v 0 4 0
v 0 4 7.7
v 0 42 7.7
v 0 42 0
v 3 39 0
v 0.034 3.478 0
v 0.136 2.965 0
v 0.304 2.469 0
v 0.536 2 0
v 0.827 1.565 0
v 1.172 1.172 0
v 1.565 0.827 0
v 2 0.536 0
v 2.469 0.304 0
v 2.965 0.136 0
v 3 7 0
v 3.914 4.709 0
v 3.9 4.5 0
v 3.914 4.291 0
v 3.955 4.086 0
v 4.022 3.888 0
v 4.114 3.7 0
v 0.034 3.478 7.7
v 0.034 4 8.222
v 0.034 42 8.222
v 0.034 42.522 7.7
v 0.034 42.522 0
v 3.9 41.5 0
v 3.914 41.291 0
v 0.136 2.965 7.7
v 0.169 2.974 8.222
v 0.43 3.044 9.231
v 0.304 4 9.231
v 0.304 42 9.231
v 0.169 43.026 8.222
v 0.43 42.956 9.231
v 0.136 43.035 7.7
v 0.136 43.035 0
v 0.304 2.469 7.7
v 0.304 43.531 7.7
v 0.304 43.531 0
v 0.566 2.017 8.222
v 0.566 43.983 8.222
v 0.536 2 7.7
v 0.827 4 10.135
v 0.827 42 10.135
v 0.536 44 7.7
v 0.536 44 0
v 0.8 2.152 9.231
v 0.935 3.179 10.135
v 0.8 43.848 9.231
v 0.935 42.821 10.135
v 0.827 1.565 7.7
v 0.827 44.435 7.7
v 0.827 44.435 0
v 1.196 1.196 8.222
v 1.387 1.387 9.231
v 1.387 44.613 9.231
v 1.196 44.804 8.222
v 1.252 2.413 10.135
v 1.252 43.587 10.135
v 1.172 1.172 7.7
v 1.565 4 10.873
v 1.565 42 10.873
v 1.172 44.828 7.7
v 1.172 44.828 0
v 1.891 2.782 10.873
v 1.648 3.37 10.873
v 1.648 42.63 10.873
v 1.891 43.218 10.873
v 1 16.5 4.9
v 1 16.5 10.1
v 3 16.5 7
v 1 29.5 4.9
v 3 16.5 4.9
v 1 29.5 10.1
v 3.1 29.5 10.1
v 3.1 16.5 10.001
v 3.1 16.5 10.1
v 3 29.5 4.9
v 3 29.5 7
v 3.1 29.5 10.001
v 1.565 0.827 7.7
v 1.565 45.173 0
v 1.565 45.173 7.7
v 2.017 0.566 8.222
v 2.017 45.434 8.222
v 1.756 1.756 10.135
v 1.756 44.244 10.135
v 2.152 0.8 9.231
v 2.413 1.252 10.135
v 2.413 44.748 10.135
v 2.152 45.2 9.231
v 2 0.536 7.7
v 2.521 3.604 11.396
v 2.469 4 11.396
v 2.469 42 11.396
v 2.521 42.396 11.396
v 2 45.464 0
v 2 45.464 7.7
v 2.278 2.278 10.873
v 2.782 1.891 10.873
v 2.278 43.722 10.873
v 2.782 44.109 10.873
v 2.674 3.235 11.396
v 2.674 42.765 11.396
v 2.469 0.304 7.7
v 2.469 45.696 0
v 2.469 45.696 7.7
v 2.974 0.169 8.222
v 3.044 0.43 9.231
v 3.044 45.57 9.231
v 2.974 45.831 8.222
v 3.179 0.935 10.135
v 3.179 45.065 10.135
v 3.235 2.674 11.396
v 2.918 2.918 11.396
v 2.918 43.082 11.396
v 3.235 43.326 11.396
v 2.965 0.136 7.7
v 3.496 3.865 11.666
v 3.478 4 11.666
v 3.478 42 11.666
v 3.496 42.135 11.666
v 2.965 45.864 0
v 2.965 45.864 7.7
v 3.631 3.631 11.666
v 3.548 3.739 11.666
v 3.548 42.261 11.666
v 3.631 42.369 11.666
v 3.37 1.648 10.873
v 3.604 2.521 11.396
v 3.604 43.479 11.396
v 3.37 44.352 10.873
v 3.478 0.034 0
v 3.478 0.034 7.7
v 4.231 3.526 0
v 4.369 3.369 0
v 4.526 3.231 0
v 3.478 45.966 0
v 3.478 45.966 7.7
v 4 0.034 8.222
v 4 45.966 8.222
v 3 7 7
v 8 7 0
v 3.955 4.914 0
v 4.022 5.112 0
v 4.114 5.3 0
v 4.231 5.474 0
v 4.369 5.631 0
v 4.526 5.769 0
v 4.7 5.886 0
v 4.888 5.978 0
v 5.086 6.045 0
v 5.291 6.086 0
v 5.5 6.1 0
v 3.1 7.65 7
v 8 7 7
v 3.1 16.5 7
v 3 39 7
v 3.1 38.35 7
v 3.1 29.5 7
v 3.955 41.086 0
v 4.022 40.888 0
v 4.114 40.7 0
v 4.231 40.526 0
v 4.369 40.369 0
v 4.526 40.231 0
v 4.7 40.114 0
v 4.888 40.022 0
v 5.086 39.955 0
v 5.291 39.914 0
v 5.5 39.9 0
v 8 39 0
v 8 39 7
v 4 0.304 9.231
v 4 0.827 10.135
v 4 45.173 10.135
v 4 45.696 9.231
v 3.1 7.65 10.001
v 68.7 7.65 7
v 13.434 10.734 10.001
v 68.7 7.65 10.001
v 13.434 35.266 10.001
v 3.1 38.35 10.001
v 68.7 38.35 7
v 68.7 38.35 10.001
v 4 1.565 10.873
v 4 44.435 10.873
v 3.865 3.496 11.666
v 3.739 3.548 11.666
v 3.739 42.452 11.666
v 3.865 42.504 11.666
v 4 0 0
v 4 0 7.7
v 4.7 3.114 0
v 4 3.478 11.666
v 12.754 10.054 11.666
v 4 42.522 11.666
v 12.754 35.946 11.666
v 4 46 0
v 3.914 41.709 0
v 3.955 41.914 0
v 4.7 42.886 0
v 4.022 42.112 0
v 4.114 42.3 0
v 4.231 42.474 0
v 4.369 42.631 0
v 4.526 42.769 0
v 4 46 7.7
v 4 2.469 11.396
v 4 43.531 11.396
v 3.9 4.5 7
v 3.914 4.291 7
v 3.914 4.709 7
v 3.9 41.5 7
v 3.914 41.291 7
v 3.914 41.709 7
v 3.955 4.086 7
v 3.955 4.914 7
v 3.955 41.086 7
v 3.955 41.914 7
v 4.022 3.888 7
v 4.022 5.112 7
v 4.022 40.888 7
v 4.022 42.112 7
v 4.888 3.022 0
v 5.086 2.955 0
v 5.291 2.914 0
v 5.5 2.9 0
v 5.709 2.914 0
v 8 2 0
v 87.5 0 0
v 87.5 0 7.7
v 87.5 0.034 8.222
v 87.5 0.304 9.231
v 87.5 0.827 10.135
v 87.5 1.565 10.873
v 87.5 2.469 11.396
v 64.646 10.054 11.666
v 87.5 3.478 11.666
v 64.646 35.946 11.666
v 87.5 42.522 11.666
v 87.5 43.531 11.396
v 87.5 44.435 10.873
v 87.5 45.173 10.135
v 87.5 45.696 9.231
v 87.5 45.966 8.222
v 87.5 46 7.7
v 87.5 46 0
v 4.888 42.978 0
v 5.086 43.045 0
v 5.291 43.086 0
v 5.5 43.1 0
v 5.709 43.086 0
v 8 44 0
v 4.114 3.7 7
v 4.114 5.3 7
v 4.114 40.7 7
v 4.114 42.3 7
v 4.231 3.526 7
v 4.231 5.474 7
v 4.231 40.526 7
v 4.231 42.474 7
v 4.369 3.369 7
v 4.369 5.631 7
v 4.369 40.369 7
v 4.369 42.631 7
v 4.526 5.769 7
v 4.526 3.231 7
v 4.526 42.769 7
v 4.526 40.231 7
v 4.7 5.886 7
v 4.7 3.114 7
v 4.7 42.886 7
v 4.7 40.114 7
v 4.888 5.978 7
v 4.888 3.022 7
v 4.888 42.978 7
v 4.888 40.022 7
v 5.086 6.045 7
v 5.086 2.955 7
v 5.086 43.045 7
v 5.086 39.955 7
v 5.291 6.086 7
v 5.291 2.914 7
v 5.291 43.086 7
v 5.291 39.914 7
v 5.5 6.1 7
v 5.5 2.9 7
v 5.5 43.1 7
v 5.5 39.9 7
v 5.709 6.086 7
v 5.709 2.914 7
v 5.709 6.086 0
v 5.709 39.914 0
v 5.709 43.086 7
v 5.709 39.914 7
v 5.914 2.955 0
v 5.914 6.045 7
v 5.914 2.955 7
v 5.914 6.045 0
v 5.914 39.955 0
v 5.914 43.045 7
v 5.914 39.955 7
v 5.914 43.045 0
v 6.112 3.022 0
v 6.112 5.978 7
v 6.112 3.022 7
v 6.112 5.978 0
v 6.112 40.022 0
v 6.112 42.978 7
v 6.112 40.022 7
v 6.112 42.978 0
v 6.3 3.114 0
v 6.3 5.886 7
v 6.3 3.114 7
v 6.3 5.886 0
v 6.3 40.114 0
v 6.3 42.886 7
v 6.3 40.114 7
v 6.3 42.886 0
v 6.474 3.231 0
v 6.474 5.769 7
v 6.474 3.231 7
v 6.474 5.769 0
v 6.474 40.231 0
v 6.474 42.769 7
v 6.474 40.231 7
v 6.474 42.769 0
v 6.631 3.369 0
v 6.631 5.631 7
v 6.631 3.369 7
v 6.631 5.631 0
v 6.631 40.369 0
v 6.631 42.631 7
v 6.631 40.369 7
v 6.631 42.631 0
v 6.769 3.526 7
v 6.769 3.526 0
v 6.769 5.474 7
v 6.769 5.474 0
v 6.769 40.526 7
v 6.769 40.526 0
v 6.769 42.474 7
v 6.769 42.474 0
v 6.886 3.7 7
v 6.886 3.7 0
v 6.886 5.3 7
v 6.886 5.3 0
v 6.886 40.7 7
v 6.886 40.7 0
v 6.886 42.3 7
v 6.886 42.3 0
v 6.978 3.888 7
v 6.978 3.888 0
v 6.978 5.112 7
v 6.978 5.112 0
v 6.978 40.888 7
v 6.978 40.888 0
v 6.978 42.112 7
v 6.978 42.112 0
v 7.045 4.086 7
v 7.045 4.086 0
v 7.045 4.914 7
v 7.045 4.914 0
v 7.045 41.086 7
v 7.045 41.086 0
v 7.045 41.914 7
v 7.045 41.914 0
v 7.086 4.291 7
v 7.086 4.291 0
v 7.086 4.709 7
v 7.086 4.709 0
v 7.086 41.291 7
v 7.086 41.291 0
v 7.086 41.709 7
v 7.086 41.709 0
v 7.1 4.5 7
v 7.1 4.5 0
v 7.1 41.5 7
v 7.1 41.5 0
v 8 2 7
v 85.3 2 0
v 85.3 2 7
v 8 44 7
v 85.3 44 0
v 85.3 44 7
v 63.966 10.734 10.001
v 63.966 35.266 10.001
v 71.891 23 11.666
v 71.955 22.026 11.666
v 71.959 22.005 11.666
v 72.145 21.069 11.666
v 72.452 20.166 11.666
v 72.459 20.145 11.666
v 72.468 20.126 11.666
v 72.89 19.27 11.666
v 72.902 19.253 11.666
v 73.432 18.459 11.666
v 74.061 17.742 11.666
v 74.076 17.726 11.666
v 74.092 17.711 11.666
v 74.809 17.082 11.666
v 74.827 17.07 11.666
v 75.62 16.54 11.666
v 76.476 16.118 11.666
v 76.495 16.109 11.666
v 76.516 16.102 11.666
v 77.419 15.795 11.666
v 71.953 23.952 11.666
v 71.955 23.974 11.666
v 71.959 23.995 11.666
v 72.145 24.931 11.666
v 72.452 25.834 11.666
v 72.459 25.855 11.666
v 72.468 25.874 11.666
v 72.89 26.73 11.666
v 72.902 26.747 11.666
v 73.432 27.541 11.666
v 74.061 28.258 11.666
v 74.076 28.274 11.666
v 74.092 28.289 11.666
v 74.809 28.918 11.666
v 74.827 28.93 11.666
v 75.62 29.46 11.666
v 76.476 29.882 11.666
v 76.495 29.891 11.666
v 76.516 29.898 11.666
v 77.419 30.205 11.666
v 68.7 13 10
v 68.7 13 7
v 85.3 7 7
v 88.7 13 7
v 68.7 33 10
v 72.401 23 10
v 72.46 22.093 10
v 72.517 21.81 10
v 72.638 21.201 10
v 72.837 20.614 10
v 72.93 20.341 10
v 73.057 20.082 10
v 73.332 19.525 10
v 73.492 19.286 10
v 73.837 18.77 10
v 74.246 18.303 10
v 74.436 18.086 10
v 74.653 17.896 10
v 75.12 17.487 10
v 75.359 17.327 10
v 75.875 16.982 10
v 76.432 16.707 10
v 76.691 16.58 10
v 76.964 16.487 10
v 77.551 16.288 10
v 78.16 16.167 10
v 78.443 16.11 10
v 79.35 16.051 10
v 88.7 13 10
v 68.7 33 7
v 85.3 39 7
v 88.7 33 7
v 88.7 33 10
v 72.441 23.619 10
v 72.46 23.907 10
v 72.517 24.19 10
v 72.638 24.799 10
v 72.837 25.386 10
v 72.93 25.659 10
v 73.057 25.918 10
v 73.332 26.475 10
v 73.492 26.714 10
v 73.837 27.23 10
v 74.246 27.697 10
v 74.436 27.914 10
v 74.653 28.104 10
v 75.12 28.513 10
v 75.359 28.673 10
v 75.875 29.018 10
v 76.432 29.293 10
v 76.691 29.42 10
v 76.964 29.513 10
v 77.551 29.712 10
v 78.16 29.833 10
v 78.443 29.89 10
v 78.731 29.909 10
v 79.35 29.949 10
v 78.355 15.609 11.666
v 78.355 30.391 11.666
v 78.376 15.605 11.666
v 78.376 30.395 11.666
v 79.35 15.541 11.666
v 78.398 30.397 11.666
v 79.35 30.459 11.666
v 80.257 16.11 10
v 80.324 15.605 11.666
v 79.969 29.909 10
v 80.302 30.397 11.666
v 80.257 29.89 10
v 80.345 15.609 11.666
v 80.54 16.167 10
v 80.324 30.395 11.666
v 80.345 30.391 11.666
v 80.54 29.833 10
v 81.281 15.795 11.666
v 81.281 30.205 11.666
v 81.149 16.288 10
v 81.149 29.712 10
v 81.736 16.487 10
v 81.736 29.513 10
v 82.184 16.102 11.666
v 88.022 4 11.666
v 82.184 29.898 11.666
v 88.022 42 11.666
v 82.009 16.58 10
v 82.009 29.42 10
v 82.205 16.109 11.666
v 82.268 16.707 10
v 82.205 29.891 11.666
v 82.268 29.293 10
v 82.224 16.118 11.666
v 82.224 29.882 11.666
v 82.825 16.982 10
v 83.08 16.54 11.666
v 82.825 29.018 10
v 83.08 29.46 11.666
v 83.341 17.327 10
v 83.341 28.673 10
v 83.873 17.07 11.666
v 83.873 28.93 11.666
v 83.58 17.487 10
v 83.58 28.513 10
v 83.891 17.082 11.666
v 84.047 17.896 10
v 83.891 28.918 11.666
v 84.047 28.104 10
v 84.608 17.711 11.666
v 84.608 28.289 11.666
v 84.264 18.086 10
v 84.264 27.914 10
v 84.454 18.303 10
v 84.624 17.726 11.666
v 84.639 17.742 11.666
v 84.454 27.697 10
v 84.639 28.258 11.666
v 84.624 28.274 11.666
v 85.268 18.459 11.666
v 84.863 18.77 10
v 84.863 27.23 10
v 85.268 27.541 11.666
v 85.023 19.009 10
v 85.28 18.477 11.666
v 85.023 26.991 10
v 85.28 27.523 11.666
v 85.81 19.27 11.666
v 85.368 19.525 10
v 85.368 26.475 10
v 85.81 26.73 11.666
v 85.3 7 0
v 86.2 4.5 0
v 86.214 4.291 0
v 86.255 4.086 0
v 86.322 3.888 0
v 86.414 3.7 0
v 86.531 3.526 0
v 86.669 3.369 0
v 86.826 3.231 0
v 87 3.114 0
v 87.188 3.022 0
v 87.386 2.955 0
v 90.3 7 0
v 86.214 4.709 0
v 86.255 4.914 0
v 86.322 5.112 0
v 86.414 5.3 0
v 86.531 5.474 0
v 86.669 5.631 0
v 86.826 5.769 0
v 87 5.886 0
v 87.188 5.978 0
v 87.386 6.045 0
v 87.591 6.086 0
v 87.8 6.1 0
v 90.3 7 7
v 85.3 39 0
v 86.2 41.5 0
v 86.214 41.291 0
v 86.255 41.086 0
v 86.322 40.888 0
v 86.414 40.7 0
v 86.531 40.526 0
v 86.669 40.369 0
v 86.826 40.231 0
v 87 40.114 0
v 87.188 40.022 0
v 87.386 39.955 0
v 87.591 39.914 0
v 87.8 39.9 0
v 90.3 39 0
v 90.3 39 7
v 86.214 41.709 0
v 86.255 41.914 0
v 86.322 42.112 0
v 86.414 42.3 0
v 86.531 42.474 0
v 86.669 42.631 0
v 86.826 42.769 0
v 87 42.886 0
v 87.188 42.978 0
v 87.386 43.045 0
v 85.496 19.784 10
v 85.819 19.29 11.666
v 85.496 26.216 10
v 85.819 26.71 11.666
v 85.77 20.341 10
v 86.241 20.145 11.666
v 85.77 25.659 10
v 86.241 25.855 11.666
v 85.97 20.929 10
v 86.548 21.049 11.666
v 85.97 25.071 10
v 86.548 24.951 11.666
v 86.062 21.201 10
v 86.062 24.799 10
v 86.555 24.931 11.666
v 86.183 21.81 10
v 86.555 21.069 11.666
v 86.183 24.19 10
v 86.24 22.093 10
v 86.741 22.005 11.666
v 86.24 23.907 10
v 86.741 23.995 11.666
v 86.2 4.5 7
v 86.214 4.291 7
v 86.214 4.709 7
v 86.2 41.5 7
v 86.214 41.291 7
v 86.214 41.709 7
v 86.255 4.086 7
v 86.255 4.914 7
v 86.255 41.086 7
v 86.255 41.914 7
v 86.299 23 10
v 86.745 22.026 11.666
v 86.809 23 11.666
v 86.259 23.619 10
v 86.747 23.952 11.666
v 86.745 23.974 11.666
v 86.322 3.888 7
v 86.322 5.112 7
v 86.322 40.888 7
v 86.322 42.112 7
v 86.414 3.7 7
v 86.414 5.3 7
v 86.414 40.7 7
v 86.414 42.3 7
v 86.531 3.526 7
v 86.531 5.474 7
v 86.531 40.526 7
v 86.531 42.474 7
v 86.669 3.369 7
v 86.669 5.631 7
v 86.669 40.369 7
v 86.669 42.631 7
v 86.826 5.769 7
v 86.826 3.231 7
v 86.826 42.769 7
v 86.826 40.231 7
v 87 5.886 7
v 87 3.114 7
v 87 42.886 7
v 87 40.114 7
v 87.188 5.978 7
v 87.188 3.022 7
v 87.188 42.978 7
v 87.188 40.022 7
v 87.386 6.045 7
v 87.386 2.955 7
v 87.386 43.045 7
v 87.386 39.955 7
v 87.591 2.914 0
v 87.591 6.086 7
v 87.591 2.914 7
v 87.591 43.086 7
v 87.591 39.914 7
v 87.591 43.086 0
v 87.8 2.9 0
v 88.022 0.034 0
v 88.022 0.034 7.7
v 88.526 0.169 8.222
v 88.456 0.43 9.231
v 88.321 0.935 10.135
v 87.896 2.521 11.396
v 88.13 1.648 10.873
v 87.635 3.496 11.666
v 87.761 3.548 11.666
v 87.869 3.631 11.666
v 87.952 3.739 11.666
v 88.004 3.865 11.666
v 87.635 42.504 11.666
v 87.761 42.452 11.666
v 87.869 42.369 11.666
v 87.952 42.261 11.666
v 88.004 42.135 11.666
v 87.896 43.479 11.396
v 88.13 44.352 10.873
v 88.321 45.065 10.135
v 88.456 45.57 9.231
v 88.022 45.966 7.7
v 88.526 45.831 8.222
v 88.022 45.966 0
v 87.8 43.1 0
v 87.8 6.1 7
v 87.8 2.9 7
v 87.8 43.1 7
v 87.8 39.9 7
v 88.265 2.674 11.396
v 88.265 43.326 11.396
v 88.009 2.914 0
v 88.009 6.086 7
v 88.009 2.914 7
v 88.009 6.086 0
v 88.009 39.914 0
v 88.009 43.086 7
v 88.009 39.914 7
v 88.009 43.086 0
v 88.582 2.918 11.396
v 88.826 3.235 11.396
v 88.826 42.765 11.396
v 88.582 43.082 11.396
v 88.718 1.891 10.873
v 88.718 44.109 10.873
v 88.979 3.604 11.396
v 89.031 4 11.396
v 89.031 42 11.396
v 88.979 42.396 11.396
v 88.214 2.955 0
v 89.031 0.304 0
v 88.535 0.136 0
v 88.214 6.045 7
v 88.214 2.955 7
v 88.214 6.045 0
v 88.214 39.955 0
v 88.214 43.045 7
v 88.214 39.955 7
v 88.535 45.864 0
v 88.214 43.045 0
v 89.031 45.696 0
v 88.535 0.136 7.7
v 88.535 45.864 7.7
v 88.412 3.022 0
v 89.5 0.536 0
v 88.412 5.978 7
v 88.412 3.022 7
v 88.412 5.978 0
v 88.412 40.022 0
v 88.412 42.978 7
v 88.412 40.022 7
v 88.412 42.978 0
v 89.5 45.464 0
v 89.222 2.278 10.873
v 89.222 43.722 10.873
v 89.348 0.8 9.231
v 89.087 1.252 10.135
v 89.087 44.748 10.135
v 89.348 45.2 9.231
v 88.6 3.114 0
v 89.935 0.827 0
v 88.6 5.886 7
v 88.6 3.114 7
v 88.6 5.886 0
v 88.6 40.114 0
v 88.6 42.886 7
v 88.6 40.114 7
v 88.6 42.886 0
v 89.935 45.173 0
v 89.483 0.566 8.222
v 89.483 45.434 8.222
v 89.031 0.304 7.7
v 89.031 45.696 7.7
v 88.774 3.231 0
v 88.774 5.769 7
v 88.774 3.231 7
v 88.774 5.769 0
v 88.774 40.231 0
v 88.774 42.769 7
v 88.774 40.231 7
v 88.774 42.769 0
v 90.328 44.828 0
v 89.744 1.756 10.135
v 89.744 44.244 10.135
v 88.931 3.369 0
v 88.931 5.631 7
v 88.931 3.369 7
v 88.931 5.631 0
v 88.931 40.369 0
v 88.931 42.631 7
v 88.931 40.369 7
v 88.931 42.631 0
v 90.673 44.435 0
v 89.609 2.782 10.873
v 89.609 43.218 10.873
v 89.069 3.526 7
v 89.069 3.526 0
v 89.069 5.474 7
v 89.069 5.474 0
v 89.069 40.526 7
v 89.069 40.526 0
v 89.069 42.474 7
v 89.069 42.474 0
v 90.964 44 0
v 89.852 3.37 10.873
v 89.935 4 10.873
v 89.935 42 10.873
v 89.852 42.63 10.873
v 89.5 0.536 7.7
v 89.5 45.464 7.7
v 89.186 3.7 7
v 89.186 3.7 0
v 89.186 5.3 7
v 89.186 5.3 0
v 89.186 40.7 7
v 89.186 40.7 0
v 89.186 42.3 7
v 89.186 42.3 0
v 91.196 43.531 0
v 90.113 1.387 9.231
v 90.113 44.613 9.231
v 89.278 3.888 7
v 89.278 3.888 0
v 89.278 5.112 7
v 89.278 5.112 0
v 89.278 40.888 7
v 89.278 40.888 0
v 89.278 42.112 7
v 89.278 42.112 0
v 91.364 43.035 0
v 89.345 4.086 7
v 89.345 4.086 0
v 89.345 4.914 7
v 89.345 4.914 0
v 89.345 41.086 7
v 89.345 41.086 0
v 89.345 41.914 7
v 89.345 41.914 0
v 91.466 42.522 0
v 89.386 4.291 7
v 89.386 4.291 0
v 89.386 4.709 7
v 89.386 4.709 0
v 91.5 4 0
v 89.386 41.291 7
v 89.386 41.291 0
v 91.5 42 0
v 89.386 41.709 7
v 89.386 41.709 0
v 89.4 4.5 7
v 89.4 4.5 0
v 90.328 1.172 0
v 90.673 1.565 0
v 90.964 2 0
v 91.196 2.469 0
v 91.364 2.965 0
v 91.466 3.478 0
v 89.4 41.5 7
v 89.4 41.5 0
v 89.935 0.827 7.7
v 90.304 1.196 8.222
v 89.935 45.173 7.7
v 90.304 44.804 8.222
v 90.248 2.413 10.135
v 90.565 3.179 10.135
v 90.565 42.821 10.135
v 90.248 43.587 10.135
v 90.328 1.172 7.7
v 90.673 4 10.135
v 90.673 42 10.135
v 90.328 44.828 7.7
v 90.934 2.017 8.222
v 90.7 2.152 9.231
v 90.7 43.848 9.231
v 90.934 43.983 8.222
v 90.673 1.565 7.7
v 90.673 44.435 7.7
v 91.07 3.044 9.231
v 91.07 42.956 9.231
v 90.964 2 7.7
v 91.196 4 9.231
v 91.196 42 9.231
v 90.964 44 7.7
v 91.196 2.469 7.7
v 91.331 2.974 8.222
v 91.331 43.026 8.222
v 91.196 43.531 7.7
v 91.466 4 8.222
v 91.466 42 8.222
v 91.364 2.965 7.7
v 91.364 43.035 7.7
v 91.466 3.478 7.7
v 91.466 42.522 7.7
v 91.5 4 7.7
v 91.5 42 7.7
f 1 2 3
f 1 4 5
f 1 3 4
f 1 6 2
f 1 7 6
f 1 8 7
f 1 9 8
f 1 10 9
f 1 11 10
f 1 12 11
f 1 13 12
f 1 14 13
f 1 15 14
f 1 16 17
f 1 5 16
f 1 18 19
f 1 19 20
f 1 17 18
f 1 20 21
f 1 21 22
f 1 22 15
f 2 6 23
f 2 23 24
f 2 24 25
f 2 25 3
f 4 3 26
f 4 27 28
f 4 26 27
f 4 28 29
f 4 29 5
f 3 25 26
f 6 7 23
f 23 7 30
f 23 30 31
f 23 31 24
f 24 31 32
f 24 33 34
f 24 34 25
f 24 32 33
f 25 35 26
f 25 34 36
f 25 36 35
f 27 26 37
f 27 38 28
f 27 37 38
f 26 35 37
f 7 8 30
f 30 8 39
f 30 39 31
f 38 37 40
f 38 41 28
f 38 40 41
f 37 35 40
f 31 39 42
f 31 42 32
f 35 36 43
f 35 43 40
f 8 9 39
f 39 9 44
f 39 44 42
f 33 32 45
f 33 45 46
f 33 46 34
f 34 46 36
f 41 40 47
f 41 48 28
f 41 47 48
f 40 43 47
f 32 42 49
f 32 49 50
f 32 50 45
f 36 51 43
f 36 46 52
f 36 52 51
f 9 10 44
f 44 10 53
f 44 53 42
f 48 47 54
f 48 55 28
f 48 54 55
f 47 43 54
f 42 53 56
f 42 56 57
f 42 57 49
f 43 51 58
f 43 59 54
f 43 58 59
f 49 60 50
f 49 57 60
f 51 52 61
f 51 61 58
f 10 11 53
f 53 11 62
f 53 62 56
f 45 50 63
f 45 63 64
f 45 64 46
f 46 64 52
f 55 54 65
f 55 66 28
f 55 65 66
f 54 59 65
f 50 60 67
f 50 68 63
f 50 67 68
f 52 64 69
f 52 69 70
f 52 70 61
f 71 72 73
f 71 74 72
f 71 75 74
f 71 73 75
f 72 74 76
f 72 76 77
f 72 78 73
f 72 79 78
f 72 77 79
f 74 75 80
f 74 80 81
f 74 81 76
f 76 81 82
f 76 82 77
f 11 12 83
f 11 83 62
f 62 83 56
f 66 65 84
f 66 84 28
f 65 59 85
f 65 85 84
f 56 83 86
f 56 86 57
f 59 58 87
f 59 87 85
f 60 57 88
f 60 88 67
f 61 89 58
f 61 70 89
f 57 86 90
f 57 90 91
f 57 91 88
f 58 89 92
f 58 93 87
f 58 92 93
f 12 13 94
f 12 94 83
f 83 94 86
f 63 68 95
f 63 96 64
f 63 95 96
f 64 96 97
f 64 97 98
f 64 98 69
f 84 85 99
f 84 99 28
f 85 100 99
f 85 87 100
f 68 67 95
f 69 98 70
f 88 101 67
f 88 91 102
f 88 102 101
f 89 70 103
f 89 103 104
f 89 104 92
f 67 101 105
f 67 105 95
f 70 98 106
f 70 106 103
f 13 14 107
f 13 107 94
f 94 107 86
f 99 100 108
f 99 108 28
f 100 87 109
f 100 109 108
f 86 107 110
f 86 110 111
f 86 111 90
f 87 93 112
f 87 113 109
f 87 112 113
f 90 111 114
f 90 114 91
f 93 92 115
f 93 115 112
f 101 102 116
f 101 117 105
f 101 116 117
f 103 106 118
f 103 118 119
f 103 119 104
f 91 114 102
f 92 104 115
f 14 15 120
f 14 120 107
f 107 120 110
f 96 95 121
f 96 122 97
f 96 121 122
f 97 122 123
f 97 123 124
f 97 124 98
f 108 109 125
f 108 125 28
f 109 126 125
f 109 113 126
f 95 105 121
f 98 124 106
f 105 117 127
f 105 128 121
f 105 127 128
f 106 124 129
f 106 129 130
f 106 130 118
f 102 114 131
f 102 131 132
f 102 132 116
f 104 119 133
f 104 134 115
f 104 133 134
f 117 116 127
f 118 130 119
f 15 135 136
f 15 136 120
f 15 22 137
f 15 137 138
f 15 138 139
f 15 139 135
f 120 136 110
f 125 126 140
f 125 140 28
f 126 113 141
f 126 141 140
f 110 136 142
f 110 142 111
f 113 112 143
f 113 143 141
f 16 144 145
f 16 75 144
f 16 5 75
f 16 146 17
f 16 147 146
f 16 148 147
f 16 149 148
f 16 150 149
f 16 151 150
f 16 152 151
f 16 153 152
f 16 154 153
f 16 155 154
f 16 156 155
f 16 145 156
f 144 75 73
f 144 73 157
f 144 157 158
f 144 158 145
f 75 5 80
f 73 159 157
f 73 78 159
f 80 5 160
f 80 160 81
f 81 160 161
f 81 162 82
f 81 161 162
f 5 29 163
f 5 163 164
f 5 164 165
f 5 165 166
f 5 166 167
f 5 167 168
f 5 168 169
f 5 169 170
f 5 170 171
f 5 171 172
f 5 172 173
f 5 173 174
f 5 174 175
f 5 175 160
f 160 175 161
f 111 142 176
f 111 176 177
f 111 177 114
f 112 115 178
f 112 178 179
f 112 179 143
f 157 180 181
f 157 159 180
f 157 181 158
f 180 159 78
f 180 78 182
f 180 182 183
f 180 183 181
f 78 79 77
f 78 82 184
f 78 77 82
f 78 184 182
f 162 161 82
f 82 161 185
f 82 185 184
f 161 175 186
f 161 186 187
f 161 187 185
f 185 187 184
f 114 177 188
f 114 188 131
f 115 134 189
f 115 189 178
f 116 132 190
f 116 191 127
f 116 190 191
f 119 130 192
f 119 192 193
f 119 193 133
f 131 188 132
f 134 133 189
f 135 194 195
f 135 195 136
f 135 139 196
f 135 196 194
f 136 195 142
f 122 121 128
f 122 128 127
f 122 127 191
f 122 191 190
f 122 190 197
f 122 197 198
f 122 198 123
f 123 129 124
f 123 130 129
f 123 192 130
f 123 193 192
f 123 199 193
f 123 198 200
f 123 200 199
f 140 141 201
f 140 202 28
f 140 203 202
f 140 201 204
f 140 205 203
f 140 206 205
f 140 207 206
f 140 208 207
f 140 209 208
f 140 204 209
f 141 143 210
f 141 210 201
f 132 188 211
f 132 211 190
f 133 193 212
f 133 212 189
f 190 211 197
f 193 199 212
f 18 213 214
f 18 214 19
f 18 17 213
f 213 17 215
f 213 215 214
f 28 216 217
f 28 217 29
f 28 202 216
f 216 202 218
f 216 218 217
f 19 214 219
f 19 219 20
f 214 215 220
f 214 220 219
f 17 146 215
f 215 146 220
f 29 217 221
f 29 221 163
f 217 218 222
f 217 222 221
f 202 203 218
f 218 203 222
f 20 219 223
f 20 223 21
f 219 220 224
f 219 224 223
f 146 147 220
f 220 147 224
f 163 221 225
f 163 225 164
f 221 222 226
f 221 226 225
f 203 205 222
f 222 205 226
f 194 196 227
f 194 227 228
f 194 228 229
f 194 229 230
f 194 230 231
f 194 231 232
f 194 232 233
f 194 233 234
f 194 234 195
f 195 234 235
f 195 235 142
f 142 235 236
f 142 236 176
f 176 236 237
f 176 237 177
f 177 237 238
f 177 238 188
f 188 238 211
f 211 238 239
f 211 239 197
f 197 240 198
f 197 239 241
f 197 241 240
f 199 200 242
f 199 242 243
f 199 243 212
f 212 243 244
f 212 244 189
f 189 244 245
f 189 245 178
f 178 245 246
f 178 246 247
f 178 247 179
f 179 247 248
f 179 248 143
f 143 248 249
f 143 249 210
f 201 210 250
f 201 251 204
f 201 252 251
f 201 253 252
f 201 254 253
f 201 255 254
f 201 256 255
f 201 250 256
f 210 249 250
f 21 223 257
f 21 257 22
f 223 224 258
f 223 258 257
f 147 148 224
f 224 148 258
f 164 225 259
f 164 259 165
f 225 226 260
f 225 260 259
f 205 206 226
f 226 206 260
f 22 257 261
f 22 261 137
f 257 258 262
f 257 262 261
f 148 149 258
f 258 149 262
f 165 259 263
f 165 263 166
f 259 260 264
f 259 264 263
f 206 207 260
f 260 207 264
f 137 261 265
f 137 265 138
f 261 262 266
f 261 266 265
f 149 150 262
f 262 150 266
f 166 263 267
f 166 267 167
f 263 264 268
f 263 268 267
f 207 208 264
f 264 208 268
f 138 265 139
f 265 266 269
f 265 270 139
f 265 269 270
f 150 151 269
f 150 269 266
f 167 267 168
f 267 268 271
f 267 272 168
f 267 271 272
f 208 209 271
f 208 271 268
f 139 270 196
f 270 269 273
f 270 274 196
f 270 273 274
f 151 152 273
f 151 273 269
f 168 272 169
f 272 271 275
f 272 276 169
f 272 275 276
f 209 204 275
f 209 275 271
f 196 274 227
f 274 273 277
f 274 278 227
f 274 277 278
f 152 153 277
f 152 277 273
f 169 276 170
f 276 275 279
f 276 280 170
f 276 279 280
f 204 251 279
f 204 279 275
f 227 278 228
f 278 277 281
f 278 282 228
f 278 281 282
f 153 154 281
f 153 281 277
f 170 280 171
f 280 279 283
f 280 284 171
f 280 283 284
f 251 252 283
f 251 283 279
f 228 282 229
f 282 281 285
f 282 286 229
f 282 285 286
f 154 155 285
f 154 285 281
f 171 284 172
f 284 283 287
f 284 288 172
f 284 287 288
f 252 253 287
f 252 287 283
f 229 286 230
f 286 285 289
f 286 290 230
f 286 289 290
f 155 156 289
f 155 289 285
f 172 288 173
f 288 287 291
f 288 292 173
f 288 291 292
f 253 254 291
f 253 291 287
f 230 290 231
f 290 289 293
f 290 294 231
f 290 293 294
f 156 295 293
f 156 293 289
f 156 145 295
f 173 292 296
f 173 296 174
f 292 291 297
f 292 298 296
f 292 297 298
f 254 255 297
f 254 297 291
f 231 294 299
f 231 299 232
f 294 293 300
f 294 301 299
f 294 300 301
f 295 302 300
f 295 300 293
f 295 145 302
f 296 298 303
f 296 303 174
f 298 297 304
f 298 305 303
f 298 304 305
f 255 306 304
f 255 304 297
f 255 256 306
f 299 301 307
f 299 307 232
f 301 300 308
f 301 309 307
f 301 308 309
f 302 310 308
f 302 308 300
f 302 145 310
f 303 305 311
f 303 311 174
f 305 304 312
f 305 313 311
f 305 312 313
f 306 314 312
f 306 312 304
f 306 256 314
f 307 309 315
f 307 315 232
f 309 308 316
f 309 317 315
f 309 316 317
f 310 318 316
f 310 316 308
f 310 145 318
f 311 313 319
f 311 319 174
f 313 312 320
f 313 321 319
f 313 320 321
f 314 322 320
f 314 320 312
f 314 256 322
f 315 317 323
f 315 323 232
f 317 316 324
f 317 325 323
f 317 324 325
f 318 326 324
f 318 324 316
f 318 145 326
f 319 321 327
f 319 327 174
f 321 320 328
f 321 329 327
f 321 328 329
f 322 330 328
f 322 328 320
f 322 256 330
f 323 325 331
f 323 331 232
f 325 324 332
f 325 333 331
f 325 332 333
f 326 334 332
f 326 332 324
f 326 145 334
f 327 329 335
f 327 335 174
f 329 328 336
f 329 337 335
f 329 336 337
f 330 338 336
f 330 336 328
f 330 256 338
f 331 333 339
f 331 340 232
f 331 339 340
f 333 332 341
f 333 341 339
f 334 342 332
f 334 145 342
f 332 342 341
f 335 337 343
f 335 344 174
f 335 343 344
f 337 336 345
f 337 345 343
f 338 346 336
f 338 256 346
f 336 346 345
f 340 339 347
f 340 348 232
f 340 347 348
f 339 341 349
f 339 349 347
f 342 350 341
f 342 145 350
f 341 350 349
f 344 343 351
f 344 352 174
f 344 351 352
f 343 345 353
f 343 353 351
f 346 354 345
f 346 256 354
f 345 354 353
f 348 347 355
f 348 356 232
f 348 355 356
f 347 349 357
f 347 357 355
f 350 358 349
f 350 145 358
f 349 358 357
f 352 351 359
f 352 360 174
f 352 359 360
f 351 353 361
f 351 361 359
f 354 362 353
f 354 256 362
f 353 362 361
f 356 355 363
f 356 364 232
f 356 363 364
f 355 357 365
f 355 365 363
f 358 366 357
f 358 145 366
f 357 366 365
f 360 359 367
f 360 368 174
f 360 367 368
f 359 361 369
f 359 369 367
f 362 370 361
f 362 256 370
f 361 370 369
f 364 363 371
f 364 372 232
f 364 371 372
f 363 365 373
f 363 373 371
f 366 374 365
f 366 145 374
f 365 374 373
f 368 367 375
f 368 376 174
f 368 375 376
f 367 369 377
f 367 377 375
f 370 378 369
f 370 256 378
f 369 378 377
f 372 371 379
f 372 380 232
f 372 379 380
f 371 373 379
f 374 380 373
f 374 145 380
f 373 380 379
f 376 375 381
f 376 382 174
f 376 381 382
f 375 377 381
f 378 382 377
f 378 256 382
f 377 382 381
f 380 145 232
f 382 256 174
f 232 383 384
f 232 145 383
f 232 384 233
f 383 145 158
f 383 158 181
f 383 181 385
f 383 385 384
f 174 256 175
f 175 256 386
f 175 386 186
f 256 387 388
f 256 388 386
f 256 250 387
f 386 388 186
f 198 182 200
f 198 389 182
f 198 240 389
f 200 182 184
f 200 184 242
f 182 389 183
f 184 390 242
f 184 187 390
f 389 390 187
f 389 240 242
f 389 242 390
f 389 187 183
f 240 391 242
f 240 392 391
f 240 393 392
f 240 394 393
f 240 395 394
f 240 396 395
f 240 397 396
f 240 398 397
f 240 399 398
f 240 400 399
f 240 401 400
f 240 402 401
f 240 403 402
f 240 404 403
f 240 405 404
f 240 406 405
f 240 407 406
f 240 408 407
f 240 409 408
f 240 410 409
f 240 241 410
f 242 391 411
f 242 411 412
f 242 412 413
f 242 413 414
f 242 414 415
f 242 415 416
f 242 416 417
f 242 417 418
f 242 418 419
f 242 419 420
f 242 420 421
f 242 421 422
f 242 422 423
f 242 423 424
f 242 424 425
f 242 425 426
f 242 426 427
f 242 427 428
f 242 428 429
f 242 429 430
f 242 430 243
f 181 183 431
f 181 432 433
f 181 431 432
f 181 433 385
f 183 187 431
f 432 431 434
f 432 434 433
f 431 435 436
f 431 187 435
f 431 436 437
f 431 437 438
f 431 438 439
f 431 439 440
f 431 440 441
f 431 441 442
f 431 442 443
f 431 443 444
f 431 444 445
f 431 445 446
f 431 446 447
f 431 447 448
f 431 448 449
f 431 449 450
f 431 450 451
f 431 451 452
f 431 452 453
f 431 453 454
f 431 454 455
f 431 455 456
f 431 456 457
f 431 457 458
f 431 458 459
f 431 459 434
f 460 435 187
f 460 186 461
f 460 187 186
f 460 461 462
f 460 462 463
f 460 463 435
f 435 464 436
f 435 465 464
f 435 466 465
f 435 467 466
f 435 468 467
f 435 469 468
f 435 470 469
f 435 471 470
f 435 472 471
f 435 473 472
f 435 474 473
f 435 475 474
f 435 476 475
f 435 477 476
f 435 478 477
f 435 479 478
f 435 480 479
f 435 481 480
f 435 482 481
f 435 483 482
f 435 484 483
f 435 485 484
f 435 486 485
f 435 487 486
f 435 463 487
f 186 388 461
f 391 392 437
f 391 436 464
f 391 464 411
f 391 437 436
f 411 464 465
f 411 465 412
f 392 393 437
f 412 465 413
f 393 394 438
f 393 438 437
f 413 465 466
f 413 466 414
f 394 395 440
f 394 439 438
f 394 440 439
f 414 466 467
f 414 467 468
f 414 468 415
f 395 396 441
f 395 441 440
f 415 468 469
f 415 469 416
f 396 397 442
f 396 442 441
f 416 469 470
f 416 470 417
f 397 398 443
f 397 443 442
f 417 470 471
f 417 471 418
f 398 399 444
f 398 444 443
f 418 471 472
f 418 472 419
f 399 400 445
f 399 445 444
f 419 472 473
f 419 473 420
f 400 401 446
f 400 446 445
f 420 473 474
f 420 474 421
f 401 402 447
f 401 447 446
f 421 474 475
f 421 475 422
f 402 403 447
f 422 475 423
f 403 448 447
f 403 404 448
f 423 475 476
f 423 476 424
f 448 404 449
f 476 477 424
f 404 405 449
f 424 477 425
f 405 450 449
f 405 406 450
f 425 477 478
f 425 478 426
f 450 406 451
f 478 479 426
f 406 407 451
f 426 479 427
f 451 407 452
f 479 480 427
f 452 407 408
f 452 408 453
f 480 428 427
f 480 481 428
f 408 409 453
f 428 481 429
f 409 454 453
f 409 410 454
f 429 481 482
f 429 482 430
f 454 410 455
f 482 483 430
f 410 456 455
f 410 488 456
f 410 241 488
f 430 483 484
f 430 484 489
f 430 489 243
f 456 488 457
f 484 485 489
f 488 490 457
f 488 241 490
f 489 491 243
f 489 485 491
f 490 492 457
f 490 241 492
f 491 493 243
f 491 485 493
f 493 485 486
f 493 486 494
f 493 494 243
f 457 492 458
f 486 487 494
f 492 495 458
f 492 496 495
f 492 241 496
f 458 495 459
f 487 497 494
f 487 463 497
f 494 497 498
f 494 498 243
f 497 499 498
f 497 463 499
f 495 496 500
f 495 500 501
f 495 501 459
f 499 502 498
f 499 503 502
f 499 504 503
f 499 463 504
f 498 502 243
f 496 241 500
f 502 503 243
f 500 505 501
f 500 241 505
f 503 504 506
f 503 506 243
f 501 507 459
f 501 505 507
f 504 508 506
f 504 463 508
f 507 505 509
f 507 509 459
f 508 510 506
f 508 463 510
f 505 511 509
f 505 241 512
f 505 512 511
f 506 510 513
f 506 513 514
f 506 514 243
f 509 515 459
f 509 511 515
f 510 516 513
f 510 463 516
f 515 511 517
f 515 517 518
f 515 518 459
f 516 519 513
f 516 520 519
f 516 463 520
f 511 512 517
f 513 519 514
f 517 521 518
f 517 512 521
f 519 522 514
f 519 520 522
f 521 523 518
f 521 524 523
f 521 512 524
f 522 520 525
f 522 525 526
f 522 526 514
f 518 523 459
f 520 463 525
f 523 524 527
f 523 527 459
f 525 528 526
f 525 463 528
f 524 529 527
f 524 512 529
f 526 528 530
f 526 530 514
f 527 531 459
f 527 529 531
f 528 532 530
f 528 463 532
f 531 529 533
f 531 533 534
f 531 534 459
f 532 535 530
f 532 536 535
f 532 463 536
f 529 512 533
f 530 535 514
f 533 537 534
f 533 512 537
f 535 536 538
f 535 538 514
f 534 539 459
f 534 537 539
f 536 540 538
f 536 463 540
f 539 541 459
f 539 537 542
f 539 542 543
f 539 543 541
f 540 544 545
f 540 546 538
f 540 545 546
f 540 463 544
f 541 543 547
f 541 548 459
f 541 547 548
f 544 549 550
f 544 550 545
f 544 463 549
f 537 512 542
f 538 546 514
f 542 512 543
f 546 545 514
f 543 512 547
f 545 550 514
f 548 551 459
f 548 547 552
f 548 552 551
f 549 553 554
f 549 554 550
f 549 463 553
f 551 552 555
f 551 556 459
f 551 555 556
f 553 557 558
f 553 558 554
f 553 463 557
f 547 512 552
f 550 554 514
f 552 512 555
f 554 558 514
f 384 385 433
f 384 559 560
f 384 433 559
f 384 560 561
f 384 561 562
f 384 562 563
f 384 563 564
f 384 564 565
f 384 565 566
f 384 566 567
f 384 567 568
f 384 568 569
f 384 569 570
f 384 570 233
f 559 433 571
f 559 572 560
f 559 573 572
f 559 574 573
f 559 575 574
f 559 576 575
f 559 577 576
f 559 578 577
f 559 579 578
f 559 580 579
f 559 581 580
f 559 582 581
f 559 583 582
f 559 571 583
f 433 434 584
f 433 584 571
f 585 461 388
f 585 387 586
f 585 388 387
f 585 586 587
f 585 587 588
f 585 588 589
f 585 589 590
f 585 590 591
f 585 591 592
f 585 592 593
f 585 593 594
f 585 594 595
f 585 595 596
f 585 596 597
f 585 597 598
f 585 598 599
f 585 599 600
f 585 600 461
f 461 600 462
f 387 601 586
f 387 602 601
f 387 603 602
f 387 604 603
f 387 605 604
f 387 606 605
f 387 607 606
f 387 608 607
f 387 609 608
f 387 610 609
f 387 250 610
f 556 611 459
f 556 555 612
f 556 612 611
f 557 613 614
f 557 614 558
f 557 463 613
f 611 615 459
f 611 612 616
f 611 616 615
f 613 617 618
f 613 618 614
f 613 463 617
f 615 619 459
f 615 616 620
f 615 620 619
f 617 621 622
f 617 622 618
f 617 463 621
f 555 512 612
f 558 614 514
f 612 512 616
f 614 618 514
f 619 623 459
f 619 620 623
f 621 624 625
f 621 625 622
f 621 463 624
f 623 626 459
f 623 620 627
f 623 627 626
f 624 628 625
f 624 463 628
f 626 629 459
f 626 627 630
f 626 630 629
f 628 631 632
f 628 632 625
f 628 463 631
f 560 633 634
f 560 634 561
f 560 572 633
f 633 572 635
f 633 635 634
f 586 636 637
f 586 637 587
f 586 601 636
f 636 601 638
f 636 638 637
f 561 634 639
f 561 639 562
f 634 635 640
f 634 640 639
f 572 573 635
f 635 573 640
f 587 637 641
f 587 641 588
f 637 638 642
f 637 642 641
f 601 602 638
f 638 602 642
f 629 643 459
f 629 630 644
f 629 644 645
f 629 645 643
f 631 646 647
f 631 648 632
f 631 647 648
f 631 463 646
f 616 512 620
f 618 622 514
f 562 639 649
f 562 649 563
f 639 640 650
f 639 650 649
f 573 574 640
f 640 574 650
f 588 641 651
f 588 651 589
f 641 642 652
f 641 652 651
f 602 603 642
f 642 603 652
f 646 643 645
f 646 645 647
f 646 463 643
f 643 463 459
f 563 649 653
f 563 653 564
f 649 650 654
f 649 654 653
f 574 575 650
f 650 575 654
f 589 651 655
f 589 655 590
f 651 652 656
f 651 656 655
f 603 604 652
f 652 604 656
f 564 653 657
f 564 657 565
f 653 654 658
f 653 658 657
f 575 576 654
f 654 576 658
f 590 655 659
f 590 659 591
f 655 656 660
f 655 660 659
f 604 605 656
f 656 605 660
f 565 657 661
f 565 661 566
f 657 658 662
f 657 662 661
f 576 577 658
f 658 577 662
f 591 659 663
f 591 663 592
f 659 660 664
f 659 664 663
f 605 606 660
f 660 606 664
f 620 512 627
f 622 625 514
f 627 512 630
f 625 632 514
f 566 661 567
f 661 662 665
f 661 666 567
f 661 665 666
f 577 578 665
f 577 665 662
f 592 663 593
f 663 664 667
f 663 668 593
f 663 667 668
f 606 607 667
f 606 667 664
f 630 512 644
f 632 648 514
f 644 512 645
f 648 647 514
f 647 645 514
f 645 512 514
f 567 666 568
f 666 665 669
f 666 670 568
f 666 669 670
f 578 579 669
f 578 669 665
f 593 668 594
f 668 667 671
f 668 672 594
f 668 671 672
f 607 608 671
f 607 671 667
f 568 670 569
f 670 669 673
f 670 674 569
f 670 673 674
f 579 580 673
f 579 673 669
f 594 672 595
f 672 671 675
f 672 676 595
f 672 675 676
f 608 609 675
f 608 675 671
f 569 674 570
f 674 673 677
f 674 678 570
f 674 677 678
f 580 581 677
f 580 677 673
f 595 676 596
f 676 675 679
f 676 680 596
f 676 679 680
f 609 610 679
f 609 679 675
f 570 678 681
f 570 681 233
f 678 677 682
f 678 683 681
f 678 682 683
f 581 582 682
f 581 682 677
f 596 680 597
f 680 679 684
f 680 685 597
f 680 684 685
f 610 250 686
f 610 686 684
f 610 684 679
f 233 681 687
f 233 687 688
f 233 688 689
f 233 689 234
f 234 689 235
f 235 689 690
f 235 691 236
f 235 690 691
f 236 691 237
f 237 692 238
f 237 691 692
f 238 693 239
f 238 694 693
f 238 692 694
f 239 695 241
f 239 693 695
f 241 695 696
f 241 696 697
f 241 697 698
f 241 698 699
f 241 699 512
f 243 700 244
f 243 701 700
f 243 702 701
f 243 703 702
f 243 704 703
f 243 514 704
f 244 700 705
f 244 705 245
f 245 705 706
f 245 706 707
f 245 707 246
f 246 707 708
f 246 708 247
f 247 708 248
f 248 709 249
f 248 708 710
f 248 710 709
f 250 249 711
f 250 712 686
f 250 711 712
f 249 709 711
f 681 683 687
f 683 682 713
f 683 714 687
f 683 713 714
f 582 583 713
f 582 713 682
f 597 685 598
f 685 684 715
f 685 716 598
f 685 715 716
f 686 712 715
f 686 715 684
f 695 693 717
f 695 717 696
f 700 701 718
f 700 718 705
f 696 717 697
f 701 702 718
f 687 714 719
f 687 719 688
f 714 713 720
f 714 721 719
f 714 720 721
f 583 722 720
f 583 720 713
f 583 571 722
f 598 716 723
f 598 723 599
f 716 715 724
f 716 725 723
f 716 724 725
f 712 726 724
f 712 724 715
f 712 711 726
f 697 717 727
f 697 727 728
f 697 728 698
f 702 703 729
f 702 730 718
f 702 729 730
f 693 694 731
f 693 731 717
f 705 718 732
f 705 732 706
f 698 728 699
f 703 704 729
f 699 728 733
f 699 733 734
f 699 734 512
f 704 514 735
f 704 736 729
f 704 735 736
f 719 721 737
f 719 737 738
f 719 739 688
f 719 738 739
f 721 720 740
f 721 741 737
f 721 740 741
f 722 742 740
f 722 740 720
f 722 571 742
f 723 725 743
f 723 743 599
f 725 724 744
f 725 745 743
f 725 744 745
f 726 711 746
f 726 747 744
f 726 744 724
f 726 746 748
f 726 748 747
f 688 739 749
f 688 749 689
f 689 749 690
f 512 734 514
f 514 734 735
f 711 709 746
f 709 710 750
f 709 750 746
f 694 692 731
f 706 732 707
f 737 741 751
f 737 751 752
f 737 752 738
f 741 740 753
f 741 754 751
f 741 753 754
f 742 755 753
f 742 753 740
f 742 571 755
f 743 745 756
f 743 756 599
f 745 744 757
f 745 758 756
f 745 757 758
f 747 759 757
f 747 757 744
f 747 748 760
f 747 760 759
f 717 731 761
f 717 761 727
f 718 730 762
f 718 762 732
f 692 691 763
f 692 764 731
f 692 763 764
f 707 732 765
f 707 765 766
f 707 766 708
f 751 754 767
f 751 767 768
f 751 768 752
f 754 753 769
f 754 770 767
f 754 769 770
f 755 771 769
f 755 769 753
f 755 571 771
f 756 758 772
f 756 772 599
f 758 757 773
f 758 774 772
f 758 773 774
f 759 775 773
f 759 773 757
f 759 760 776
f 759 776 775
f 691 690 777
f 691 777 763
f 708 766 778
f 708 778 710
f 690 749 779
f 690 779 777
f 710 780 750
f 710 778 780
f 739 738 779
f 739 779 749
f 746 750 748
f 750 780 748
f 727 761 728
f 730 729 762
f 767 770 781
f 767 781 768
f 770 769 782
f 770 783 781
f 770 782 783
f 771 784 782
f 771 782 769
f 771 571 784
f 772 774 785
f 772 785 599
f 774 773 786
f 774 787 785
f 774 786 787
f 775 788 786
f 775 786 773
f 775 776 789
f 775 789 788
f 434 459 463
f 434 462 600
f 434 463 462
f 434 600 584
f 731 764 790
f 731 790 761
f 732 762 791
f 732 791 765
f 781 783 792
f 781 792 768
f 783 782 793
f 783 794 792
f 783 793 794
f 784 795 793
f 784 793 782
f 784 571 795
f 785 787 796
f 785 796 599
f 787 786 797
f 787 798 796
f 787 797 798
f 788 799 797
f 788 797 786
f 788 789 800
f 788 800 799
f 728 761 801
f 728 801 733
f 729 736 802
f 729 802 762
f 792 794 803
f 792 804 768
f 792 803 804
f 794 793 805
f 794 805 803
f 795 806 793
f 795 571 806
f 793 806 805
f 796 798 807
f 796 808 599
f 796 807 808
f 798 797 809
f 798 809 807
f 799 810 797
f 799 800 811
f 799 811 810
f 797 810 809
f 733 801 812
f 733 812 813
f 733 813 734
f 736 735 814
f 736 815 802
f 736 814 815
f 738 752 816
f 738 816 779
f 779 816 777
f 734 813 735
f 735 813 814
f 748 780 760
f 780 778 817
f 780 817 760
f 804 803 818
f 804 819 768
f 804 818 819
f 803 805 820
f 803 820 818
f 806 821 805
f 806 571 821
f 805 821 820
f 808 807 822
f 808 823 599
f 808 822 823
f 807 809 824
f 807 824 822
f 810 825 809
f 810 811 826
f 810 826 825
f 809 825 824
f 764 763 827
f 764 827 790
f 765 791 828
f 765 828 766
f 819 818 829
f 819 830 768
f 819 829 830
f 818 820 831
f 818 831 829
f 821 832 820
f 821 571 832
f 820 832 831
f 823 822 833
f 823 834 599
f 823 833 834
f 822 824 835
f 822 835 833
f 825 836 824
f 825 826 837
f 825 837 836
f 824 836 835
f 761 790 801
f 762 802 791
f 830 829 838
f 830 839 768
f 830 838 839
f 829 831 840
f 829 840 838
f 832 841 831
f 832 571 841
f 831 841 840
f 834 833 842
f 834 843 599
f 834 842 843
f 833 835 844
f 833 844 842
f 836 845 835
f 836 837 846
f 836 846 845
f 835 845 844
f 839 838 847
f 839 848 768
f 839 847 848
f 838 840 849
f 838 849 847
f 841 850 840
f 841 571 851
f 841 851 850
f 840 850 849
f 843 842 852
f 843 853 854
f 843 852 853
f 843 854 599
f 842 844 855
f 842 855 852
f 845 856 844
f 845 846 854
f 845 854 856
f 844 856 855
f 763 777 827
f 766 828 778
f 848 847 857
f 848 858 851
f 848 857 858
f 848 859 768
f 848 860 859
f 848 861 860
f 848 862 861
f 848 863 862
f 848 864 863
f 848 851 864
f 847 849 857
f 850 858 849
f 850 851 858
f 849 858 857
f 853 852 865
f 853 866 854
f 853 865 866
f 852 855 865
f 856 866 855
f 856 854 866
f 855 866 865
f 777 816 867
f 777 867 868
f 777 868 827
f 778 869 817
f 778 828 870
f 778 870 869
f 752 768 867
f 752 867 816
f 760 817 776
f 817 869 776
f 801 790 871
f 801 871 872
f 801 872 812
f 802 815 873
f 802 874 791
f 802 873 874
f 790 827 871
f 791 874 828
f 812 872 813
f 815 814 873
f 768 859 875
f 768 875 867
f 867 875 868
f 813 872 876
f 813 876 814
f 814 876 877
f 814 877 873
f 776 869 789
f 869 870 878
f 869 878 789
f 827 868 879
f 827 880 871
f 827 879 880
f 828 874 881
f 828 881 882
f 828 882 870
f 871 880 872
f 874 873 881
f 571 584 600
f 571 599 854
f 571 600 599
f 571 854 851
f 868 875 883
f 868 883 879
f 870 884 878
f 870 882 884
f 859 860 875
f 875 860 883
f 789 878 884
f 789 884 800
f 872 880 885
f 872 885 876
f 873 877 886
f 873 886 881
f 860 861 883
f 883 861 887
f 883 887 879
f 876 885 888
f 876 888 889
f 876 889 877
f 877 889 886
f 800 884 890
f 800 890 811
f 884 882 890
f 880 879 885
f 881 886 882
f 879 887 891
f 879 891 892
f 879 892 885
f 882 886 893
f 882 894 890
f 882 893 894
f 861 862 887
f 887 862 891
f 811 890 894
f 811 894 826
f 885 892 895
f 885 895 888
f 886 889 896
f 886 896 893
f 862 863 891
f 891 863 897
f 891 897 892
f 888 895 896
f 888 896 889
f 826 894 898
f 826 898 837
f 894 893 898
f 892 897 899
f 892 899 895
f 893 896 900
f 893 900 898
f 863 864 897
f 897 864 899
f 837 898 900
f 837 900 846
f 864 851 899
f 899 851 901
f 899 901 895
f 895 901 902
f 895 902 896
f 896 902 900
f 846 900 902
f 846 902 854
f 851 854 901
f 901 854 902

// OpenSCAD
// Dilder Rev 2 "extended with joystick" — TOP COVER v3, 2-PIECE (no middle platform)
//
// Forked from top-cover-windowed-screen-inlay-v2-46y.scad. The only
// functional change: there's no middle platform anymore, so the 5 mm
// pedestal-protrusion reservation at the cover's bottom is removed.
// The display PCB now sits directly on the base's rim at global z = 14
// (= local cover z = 0).
//
// Local Z layout (cover-local; z = 0 is the cover's mating bottom,
// flush with the base's top rim at global z = 14):
//   0 ─────────── cover mating bottom (= base top rim)
//                  display PCB bottom rests here (and on the Pico
//                  headers below through the middle Y).
//   7 ─────────── display top (FPC fold clearance 7 mm above PCB)
//   7.7 ────────── face plate top (0.7 mm face plate)
//   11.7 ─────── bullnose top — cover total height
//
// Every Y/X feature (display inlay, viewing window, joystick, pillars)
// is identical to the v2-46y cover — just shifted down by 5 mm in cover-
// local Z because the pedestal reservation is gone.
//
// Export:
//   openscad -o top-cover-windowed-screen-inlay-v3-2piece.3mf top-cover-windowed-screen-inlay-v3-2piece.scad

$fn = 48;

// ============================================================
// Outer shell (flush with base-v3-2piece at Y=46)
// ============================================================
enclosure_outer_width_along_x_axis_mm          = 91.5;
enclosure_outer_depth_along_y_axis_mm          = 46;
outer_case_top_view_corner_radius_mm           = 4;
outer_case_top_edge_bullnose_radius_mm         = 4;

// ============================================================
// Asymmetric ±X end walls — match base-v3
// ============================================================
minus_x_end_wall_thickness_mm                  = 3.0;
plus_x_end_wall_thickness_mm                   = 1.2;
perimeter_long_side_wall_thickness_y_mm_base   = 2;

// ============================================================
// Cover Z layout — NO middle-platform pedestal reservation
// ============================================================
// v2 had `middle_platform_pedestal_protrusion_into_cover_z_mm = 5` here;
// in the 2-piece design the display PCB sits directly on the base rim at
// local z = 0 (display's ±Y overhang rests on the base; its middle sits
// on the Pico W header stack below).
middle_platform_pedestal_protrusion_into_cover_z_mm = 0;

display_footprint_thickness_z_mm               = 7;
face_plate_thickness_z_mm                      = 0.7;

display_bottom_z_mm =
    middle_platform_pedestal_protrusion_into_cover_z_mm;      // = 0
display_top_z_mm =
    display_bottom_z_mm + display_footprint_thickness_z_mm;   // = 7
face_plate_bottom_z_mm                         = display_top_z_mm; // = 7
face_plate_top_z_mm =
    face_plate_bottom_z_mm + face_plate_thickness_z_mm;       // = 7.7
cover_total_height_z_mm =
    face_plate_top_z_mm + outer_case_top_edge_bullnose_radius_mm; // = 11.7

// ============================================================
// Display footprint & screen inlay (unchanged from v2-46y)
// ============================================================
display_footprint_length_along_x_mm            = 65;
display_footprint_depth_along_y_mm             = 30;
print_fit_tolerance_slop_mm                    = 0.4;

display_minus_x_origin_mm =
    minus_x_end_wall_thickness_mm
      + print_fit_tolerance_slop_mm;
display_plus_x_end_mm =
    display_minus_x_origin_mm + display_footprint_length_along_x_mm;
display_y_centerline_mm =
    enclosure_outer_depth_along_y_axis_mm / 2;                // = 23
display_minus_y_origin_mm =
    display_y_centerline_mm - display_footprint_depth_along_y_mm / 2;
display_plus_y_end_mm =
    display_minus_y_origin_mm + display_footprint_depth_along_y_mm;

screen_inlay_depth_z_mm                        = 3;
screen_inlay_xy_slop_per_edge_mm               = 0.3;
screen_inlay_y_slop_per_edge_mm                = 0.35;

screen_inlay_x_start_mm =
    display_minus_x_origin_mm - screen_inlay_xy_slop_per_edge_mm;
screen_inlay_x_end_mm =
    display_plus_x_end_mm + screen_inlay_xy_slop_per_edge_mm;
screen_inlay_y_start_mm =
    display_minus_y_origin_mm - screen_inlay_y_slop_per_edge_mm;
screen_inlay_y_end_mm =
    display_plus_y_end_mm + screen_inlay_y_slop_per_edge_mm;
screen_inlay_bottom_z_mm = face_plate_bottom_z_mm;
screen_inlay_top_z_mm =
    face_plate_bottom_z_mm + screen_inlay_depth_z_mm;

// ============================================================
// FPC ribbon divet (2 mm variant, unchanged)
// ============================================================
fpc_ribbon_divet_width_along_y_mm              = 13;
fpc_ribbon_divet_wall_remaining_thickness_mm   = 1.0;
fpc_ribbon_divet_z_extend_below_inlay_mm       = 2.0;
fpc_ribbon_divet_x_start_mm =
    fpc_ribbon_divet_wall_remaining_thickness_mm;
fpc_ribbon_divet_x_end_mm =
    screen_inlay_x_start_mm;
fpc_ribbon_divet_y_start_mm =
    display_y_centerline_mm - fpc_ribbon_divet_width_along_y_mm / 2;
fpc_ribbon_divet_y_end_mm =
    fpc_ribbon_divet_y_start_mm + fpc_ribbon_divet_width_along_y_mm;
fpc_ribbon_divet_z_bottom_mm =
    screen_inlay_bottom_z_mm - fpc_ribbon_divet_z_extend_below_inlay_mm;
fpc_ribbon_divet_z_top_mm =
    screen_inlay_top_z_mm;

// ============================================================
// Display viewing window (48 × 22, shift 2.8 — unchanged from v2-46y)
// ============================================================
display_viewing_window_length_along_x_mm       = 48;
display_viewing_window_depth_along_y_mm        = 22;
display_window_shift_toward_joystick_x_mm      = 2.8;
display_window_origin_x_mm =
    display_minus_x_origin_mm
      + (display_footprint_length_along_x_mm
          - display_viewing_window_length_along_x_mm) / 2
      + display_window_shift_toward_joystick_x_mm;
display_window_origin_y_mm =
    display_minus_y_origin_mm
      + (display_footprint_depth_along_y_mm
          - display_viewing_window_depth_along_y_mm) / 2;
display_window_top_taper_width_mm              = 2.0;

// ============================================================
// Joystick through-hole (+X half, centered on display Y centerline)
// ============================================================
joystick_through_hole_diameter_mm              = 12;
joystick_through_hole_center_x_mm =
    (display_plus_x_end_mm
      + (enclosure_outer_width_along_x_axis_mm
          - plus_x_end_wall_thickness_mm)) / 2;
joystick_through_hole_center_y_mm              = display_y_centerline_mm;
joystick_hole_top_taper_width_mm               = 1.5;

// ============================================================
// Joystick PCB pocket (mount bores removed — see note)
// ============================================================
joystick_pcb_pocket_width_x_mm                 = 20;
joystick_pcb_pocket_depth_y_mm                 = 20;
joystick_pcb_pocket_depth_z_mm                 = screen_inlay_depth_z_mm;

joystick_pcb_pocket_x_start_mm =
    screen_inlay_x_end_mm;
joystick_pcb_pocket_x_end_mm =
    joystick_pcb_pocket_x_start_mm + joystick_pcb_pocket_width_x_mm;
joystick_pcb_pocket_y_start_mm =
    joystick_through_hole_center_y_mm - joystick_pcb_pocket_depth_y_mm / 2;
joystick_pcb_pocket_y_end_mm =
    joystick_pcb_pocket_y_start_mm + joystick_pcb_pocket_depth_y_mm;

// ============================================================
// Corner pillars — blind M3 bores capped at face plate bottom
// ============================================================
corner_pillar_square_side_length_mm            = 5;
corner_pillar_inner_facing_corner_radius_mm    = 1;
m3_screw_clearance_hole_diameter_mm            = 3.2;
m3_bore_top_z_mm                               = face_plate_bottom_z_mm;

corner_pillar_xy_origin_positions_list = [
    [minus_x_end_wall_thickness_mm,
     perimeter_long_side_wall_thickness_y_mm_base],
    [enclosure_outer_width_along_x_axis_mm
       - plus_x_end_wall_thickness_mm
       - corner_pillar_square_side_length_mm,
     perimeter_long_side_wall_thickness_y_mm_base],
    [minus_x_end_wall_thickness_mm,
     enclosure_outer_depth_along_y_axis_mm
       - perimeter_long_side_wall_thickness_y_mm_base
       - corner_pillar_square_side_length_mm],
    [enclosure_outer_width_along_x_axis_mm
       - plus_x_end_wall_thickness_mm
       - corner_pillar_square_side_length_mm,
     enclosure_outer_depth_along_y_axis_mm
       - perimeter_long_side_wall_thickness_y_mm_base
       - corner_pillar_square_side_length_mm],
];


// ========== Helpers ==========

module pillar_one_round(w, l, h, r, round_x, round_y) {
    tiny = 0.01;
    hull() {
        for (ix = [0, 1])
            for (iy = [0, 1]) {
                cr = (ix == round_x && iy == round_y) ? r : tiny;
                translate([cr + ix * (w - 2*cr), cr + iy * (l - 2*cr), 0])
                    cylinder(r = cr, h = h, $fn = 48);
            }
    }
}

module shell_with_bullnose_top(w, l, h, case_r, top_r) {
    intersection() {
        hull() {
            for (x = [case_r, w - case_r])
                for (y = [case_r, l - case_r]) {
                    translate([x, y, 0])
                        cylinder(r = case_r, h = h - top_r, $fn = 48);
                    translate([x, y, h - top_r])
                        sphere(r = case_r, $fn = 24);
                }
        }
        translate([-1, -1, 0])
            cube([w + 2, l + 2, h]);
    }
}

module chamber_carve_preserving_pillars(origin_x, origin_y, origin_z,
                                        width_x, depth_y, height_z,
                                        pillar_xy_list, pillar_side) {
    difference() {
        translate([origin_x, origin_y, origin_z])
            cube([width_x, depth_y, height_z]);
        for (pillar_origin_xy = pillar_xy_list)
            translate([pillar_origin_xy[0], pillar_origin_xy[1], origin_z - 0.5])
                cube([pillar_side, pillar_side, height_z + 1]);
    }
}


// ========== Top cover (2-piece, 46 mm Y) ==========

module top_cover_windowed_screen_inlay_v3_2piece() {
    cavity_inner_x_start_mm = minus_x_end_wall_thickness_mm;
    cavity_inner_x_end_mm =
        enclosure_outer_width_along_x_axis_mm
          - plus_x_end_wall_thickness_mm;
    cavity_inner_y_start_mm = perimeter_long_side_wall_thickness_y_mm_base;
    cavity_inner_y_end_mm =
        enclosure_outer_depth_along_y_axis_mm
          - perimeter_long_side_wall_thickness_y_mm_base;

    difference() {
        union() {
            shell_with_bullnose_top(
                enclosure_outer_width_along_x_axis_mm,
                enclosure_outer_depth_along_y_axis_mm,
                cover_total_height_z_mm,
                outer_case_top_view_corner_radius_mm,
                outer_case_top_edge_bullnose_radius_mm);

            for (corner_pillar_origin_xy = corner_pillar_xy_origin_positions_list) {
                pillar_rounds_positive_x_corner =
                    (corner_pillar_origin_xy[0]
                      < enclosure_outer_width_along_x_axis_mm / 2) ? 1 : 0;
                pillar_rounds_positive_y_corner =
                    (corner_pillar_origin_xy[1]
                      < enclosure_outer_depth_along_y_axis_mm / 2) ? 1 : 0;
                translate([corner_pillar_origin_xy[0],
                           corner_pillar_origin_xy[1],
                           0])
                    pillar_one_round(
                        corner_pillar_square_side_length_mm,
                        corner_pillar_square_side_length_mm,
                        face_plate_top_z_mm,
                        corner_pillar_inner_facing_corner_radius_mm,
                        pillar_rounds_positive_x_corner,
                        pillar_rounds_positive_y_corner);
            }
        }

        chamber_carve_preserving_pillars(
            cavity_inner_x_start_mm,
            cavity_inner_y_start_mm,
            -0.1,
            cavity_inner_x_end_mm - cavity_inner_x_start_mm,
            cavity_inner_y_end_mm - cavity_inner_y_start_mm,
            face_plate_bottom_z_mm + 0.1,
            corner_pillar_xy_origin_positions_list,
            corner_pillar_square_side_length_mm);

        translate([screen_inlay_x_start_mm,
                   screen_inlay_y_start_mm,
                   screen_inlay_bottom_z_mm - 0.1])
            cube([screen_inlay_x_end_mm - screen_inlay_x_start_mm,
                  screen_inlay_y_end_mm - screen_inlay_y_start_mm,
                  (screen_inlay_top_z_mm + 0.001)
                    - (screen_inlay_bottom_z_mm - 0.1)]);

        translate([fpc_ribbon_divet_x_start_mm,
                   fpc_ribbon_divet_y_start_mm,
                   fpc_ribbon_divet_z_bottom_mm - 0.1])
            cube([fpc_ribbon_divet_x_end_mm - fpc_ribbon_divet_x_start_mm,
                  fpc_ribbon_divet_y_end_mm - fpc_ribbon_divet_y_start_mm,
                  (fpc_ribbon_divet_z_top_mm + 0.1)
                    - (fpc_ribbon_divet_z_bottom_mm - 0.1)]);

        hull() {
            translate([display_window_origin_x_mm,
                       display_window_origin_y_mm,
                       face_plate_bottom_z_mm - 0.1])
                cube([display_viewing_window_length_along_x_mm,
                      display_viewing_window_depth_along_y_mm,
                      0.001]);
            translate([display_window_origin_x_mm
                         - display_window_top_taper_width_mm,
                       display_window_origin_y_mm
                         - display_window_top_taper_width_mm,
                       cover_total_height_z_mm + 0.1 - 0.001])
                cube([display_viewing_window_length_along_x_mm
                        + 2 * display_window_top_taper_width_mm,
                      display_viewing_window_depth_along_y_mm
                        + 2 * display_window_top_taper_width_mm,
                      0.001]);
        }

        translate([joystick_through_hole_center_x_mm,
                   joystick_through_hole_center_y_mm,
                   0])
            hull() {
                translate([0, 0, face_plate_bottom_z_mm - 0.1])
                    cylinder(
                        h = 0.001,
                        d = joystick_through_hole_diameter_mm);
                translate([0, 0,
                           cover_total_height_z_mm + 0.1 - 0.001])
                    cylinder(
                        h = 0.001,
                        d = joystick_through_hole_diameter_mm
                              + 2 * joystick_hole_top_taper_width_mm);
            }

        for (corner_pillar_origin_xy = corner_pillar_xy_origin_positions_list) {
            screw_hole_center_x_mm =
                corner_pillar_origin_xy[0]
                  + corner_pillar_square_side_length_mm / 2;
            screw_hole_center_y_mm =
                corner_pillar_origin_xy[1]
                  + corner_pillar_square_side_length_mm / 2;
            translate([screw_hole_center_x_mm,
                       screw_hole_center_y_mm,
                       -0.1])
                cylinder(h = m3_bore_top_z_mm + 0.1,
                         d = m3_screw_clearance_hole_diameter_mm);
        }

        translate([joystick_pcb_pocket_x_start_mm,
                   joystick_pcb_pocket_y_start_mm,
                   face_plate_bottom_z_mm - 0.1])
            cube([joystick_pcb_pocket_width_x_mm,
                  joystick_pcb_pocket_depth_y_mm,
                  joystick_pcb_pocket_depth_z_mm + 0.1]);

        // NOTE: joystick-PCB mount bores remain removed (kept consistent
        // with the v1-2mm / pico2-v2-2mm / v2-46y lineage). Re-add when
        // the joystick-PCB retention plan lands.
    }
}

top_cover_windowed_screen_inlay_v3_2piece();
